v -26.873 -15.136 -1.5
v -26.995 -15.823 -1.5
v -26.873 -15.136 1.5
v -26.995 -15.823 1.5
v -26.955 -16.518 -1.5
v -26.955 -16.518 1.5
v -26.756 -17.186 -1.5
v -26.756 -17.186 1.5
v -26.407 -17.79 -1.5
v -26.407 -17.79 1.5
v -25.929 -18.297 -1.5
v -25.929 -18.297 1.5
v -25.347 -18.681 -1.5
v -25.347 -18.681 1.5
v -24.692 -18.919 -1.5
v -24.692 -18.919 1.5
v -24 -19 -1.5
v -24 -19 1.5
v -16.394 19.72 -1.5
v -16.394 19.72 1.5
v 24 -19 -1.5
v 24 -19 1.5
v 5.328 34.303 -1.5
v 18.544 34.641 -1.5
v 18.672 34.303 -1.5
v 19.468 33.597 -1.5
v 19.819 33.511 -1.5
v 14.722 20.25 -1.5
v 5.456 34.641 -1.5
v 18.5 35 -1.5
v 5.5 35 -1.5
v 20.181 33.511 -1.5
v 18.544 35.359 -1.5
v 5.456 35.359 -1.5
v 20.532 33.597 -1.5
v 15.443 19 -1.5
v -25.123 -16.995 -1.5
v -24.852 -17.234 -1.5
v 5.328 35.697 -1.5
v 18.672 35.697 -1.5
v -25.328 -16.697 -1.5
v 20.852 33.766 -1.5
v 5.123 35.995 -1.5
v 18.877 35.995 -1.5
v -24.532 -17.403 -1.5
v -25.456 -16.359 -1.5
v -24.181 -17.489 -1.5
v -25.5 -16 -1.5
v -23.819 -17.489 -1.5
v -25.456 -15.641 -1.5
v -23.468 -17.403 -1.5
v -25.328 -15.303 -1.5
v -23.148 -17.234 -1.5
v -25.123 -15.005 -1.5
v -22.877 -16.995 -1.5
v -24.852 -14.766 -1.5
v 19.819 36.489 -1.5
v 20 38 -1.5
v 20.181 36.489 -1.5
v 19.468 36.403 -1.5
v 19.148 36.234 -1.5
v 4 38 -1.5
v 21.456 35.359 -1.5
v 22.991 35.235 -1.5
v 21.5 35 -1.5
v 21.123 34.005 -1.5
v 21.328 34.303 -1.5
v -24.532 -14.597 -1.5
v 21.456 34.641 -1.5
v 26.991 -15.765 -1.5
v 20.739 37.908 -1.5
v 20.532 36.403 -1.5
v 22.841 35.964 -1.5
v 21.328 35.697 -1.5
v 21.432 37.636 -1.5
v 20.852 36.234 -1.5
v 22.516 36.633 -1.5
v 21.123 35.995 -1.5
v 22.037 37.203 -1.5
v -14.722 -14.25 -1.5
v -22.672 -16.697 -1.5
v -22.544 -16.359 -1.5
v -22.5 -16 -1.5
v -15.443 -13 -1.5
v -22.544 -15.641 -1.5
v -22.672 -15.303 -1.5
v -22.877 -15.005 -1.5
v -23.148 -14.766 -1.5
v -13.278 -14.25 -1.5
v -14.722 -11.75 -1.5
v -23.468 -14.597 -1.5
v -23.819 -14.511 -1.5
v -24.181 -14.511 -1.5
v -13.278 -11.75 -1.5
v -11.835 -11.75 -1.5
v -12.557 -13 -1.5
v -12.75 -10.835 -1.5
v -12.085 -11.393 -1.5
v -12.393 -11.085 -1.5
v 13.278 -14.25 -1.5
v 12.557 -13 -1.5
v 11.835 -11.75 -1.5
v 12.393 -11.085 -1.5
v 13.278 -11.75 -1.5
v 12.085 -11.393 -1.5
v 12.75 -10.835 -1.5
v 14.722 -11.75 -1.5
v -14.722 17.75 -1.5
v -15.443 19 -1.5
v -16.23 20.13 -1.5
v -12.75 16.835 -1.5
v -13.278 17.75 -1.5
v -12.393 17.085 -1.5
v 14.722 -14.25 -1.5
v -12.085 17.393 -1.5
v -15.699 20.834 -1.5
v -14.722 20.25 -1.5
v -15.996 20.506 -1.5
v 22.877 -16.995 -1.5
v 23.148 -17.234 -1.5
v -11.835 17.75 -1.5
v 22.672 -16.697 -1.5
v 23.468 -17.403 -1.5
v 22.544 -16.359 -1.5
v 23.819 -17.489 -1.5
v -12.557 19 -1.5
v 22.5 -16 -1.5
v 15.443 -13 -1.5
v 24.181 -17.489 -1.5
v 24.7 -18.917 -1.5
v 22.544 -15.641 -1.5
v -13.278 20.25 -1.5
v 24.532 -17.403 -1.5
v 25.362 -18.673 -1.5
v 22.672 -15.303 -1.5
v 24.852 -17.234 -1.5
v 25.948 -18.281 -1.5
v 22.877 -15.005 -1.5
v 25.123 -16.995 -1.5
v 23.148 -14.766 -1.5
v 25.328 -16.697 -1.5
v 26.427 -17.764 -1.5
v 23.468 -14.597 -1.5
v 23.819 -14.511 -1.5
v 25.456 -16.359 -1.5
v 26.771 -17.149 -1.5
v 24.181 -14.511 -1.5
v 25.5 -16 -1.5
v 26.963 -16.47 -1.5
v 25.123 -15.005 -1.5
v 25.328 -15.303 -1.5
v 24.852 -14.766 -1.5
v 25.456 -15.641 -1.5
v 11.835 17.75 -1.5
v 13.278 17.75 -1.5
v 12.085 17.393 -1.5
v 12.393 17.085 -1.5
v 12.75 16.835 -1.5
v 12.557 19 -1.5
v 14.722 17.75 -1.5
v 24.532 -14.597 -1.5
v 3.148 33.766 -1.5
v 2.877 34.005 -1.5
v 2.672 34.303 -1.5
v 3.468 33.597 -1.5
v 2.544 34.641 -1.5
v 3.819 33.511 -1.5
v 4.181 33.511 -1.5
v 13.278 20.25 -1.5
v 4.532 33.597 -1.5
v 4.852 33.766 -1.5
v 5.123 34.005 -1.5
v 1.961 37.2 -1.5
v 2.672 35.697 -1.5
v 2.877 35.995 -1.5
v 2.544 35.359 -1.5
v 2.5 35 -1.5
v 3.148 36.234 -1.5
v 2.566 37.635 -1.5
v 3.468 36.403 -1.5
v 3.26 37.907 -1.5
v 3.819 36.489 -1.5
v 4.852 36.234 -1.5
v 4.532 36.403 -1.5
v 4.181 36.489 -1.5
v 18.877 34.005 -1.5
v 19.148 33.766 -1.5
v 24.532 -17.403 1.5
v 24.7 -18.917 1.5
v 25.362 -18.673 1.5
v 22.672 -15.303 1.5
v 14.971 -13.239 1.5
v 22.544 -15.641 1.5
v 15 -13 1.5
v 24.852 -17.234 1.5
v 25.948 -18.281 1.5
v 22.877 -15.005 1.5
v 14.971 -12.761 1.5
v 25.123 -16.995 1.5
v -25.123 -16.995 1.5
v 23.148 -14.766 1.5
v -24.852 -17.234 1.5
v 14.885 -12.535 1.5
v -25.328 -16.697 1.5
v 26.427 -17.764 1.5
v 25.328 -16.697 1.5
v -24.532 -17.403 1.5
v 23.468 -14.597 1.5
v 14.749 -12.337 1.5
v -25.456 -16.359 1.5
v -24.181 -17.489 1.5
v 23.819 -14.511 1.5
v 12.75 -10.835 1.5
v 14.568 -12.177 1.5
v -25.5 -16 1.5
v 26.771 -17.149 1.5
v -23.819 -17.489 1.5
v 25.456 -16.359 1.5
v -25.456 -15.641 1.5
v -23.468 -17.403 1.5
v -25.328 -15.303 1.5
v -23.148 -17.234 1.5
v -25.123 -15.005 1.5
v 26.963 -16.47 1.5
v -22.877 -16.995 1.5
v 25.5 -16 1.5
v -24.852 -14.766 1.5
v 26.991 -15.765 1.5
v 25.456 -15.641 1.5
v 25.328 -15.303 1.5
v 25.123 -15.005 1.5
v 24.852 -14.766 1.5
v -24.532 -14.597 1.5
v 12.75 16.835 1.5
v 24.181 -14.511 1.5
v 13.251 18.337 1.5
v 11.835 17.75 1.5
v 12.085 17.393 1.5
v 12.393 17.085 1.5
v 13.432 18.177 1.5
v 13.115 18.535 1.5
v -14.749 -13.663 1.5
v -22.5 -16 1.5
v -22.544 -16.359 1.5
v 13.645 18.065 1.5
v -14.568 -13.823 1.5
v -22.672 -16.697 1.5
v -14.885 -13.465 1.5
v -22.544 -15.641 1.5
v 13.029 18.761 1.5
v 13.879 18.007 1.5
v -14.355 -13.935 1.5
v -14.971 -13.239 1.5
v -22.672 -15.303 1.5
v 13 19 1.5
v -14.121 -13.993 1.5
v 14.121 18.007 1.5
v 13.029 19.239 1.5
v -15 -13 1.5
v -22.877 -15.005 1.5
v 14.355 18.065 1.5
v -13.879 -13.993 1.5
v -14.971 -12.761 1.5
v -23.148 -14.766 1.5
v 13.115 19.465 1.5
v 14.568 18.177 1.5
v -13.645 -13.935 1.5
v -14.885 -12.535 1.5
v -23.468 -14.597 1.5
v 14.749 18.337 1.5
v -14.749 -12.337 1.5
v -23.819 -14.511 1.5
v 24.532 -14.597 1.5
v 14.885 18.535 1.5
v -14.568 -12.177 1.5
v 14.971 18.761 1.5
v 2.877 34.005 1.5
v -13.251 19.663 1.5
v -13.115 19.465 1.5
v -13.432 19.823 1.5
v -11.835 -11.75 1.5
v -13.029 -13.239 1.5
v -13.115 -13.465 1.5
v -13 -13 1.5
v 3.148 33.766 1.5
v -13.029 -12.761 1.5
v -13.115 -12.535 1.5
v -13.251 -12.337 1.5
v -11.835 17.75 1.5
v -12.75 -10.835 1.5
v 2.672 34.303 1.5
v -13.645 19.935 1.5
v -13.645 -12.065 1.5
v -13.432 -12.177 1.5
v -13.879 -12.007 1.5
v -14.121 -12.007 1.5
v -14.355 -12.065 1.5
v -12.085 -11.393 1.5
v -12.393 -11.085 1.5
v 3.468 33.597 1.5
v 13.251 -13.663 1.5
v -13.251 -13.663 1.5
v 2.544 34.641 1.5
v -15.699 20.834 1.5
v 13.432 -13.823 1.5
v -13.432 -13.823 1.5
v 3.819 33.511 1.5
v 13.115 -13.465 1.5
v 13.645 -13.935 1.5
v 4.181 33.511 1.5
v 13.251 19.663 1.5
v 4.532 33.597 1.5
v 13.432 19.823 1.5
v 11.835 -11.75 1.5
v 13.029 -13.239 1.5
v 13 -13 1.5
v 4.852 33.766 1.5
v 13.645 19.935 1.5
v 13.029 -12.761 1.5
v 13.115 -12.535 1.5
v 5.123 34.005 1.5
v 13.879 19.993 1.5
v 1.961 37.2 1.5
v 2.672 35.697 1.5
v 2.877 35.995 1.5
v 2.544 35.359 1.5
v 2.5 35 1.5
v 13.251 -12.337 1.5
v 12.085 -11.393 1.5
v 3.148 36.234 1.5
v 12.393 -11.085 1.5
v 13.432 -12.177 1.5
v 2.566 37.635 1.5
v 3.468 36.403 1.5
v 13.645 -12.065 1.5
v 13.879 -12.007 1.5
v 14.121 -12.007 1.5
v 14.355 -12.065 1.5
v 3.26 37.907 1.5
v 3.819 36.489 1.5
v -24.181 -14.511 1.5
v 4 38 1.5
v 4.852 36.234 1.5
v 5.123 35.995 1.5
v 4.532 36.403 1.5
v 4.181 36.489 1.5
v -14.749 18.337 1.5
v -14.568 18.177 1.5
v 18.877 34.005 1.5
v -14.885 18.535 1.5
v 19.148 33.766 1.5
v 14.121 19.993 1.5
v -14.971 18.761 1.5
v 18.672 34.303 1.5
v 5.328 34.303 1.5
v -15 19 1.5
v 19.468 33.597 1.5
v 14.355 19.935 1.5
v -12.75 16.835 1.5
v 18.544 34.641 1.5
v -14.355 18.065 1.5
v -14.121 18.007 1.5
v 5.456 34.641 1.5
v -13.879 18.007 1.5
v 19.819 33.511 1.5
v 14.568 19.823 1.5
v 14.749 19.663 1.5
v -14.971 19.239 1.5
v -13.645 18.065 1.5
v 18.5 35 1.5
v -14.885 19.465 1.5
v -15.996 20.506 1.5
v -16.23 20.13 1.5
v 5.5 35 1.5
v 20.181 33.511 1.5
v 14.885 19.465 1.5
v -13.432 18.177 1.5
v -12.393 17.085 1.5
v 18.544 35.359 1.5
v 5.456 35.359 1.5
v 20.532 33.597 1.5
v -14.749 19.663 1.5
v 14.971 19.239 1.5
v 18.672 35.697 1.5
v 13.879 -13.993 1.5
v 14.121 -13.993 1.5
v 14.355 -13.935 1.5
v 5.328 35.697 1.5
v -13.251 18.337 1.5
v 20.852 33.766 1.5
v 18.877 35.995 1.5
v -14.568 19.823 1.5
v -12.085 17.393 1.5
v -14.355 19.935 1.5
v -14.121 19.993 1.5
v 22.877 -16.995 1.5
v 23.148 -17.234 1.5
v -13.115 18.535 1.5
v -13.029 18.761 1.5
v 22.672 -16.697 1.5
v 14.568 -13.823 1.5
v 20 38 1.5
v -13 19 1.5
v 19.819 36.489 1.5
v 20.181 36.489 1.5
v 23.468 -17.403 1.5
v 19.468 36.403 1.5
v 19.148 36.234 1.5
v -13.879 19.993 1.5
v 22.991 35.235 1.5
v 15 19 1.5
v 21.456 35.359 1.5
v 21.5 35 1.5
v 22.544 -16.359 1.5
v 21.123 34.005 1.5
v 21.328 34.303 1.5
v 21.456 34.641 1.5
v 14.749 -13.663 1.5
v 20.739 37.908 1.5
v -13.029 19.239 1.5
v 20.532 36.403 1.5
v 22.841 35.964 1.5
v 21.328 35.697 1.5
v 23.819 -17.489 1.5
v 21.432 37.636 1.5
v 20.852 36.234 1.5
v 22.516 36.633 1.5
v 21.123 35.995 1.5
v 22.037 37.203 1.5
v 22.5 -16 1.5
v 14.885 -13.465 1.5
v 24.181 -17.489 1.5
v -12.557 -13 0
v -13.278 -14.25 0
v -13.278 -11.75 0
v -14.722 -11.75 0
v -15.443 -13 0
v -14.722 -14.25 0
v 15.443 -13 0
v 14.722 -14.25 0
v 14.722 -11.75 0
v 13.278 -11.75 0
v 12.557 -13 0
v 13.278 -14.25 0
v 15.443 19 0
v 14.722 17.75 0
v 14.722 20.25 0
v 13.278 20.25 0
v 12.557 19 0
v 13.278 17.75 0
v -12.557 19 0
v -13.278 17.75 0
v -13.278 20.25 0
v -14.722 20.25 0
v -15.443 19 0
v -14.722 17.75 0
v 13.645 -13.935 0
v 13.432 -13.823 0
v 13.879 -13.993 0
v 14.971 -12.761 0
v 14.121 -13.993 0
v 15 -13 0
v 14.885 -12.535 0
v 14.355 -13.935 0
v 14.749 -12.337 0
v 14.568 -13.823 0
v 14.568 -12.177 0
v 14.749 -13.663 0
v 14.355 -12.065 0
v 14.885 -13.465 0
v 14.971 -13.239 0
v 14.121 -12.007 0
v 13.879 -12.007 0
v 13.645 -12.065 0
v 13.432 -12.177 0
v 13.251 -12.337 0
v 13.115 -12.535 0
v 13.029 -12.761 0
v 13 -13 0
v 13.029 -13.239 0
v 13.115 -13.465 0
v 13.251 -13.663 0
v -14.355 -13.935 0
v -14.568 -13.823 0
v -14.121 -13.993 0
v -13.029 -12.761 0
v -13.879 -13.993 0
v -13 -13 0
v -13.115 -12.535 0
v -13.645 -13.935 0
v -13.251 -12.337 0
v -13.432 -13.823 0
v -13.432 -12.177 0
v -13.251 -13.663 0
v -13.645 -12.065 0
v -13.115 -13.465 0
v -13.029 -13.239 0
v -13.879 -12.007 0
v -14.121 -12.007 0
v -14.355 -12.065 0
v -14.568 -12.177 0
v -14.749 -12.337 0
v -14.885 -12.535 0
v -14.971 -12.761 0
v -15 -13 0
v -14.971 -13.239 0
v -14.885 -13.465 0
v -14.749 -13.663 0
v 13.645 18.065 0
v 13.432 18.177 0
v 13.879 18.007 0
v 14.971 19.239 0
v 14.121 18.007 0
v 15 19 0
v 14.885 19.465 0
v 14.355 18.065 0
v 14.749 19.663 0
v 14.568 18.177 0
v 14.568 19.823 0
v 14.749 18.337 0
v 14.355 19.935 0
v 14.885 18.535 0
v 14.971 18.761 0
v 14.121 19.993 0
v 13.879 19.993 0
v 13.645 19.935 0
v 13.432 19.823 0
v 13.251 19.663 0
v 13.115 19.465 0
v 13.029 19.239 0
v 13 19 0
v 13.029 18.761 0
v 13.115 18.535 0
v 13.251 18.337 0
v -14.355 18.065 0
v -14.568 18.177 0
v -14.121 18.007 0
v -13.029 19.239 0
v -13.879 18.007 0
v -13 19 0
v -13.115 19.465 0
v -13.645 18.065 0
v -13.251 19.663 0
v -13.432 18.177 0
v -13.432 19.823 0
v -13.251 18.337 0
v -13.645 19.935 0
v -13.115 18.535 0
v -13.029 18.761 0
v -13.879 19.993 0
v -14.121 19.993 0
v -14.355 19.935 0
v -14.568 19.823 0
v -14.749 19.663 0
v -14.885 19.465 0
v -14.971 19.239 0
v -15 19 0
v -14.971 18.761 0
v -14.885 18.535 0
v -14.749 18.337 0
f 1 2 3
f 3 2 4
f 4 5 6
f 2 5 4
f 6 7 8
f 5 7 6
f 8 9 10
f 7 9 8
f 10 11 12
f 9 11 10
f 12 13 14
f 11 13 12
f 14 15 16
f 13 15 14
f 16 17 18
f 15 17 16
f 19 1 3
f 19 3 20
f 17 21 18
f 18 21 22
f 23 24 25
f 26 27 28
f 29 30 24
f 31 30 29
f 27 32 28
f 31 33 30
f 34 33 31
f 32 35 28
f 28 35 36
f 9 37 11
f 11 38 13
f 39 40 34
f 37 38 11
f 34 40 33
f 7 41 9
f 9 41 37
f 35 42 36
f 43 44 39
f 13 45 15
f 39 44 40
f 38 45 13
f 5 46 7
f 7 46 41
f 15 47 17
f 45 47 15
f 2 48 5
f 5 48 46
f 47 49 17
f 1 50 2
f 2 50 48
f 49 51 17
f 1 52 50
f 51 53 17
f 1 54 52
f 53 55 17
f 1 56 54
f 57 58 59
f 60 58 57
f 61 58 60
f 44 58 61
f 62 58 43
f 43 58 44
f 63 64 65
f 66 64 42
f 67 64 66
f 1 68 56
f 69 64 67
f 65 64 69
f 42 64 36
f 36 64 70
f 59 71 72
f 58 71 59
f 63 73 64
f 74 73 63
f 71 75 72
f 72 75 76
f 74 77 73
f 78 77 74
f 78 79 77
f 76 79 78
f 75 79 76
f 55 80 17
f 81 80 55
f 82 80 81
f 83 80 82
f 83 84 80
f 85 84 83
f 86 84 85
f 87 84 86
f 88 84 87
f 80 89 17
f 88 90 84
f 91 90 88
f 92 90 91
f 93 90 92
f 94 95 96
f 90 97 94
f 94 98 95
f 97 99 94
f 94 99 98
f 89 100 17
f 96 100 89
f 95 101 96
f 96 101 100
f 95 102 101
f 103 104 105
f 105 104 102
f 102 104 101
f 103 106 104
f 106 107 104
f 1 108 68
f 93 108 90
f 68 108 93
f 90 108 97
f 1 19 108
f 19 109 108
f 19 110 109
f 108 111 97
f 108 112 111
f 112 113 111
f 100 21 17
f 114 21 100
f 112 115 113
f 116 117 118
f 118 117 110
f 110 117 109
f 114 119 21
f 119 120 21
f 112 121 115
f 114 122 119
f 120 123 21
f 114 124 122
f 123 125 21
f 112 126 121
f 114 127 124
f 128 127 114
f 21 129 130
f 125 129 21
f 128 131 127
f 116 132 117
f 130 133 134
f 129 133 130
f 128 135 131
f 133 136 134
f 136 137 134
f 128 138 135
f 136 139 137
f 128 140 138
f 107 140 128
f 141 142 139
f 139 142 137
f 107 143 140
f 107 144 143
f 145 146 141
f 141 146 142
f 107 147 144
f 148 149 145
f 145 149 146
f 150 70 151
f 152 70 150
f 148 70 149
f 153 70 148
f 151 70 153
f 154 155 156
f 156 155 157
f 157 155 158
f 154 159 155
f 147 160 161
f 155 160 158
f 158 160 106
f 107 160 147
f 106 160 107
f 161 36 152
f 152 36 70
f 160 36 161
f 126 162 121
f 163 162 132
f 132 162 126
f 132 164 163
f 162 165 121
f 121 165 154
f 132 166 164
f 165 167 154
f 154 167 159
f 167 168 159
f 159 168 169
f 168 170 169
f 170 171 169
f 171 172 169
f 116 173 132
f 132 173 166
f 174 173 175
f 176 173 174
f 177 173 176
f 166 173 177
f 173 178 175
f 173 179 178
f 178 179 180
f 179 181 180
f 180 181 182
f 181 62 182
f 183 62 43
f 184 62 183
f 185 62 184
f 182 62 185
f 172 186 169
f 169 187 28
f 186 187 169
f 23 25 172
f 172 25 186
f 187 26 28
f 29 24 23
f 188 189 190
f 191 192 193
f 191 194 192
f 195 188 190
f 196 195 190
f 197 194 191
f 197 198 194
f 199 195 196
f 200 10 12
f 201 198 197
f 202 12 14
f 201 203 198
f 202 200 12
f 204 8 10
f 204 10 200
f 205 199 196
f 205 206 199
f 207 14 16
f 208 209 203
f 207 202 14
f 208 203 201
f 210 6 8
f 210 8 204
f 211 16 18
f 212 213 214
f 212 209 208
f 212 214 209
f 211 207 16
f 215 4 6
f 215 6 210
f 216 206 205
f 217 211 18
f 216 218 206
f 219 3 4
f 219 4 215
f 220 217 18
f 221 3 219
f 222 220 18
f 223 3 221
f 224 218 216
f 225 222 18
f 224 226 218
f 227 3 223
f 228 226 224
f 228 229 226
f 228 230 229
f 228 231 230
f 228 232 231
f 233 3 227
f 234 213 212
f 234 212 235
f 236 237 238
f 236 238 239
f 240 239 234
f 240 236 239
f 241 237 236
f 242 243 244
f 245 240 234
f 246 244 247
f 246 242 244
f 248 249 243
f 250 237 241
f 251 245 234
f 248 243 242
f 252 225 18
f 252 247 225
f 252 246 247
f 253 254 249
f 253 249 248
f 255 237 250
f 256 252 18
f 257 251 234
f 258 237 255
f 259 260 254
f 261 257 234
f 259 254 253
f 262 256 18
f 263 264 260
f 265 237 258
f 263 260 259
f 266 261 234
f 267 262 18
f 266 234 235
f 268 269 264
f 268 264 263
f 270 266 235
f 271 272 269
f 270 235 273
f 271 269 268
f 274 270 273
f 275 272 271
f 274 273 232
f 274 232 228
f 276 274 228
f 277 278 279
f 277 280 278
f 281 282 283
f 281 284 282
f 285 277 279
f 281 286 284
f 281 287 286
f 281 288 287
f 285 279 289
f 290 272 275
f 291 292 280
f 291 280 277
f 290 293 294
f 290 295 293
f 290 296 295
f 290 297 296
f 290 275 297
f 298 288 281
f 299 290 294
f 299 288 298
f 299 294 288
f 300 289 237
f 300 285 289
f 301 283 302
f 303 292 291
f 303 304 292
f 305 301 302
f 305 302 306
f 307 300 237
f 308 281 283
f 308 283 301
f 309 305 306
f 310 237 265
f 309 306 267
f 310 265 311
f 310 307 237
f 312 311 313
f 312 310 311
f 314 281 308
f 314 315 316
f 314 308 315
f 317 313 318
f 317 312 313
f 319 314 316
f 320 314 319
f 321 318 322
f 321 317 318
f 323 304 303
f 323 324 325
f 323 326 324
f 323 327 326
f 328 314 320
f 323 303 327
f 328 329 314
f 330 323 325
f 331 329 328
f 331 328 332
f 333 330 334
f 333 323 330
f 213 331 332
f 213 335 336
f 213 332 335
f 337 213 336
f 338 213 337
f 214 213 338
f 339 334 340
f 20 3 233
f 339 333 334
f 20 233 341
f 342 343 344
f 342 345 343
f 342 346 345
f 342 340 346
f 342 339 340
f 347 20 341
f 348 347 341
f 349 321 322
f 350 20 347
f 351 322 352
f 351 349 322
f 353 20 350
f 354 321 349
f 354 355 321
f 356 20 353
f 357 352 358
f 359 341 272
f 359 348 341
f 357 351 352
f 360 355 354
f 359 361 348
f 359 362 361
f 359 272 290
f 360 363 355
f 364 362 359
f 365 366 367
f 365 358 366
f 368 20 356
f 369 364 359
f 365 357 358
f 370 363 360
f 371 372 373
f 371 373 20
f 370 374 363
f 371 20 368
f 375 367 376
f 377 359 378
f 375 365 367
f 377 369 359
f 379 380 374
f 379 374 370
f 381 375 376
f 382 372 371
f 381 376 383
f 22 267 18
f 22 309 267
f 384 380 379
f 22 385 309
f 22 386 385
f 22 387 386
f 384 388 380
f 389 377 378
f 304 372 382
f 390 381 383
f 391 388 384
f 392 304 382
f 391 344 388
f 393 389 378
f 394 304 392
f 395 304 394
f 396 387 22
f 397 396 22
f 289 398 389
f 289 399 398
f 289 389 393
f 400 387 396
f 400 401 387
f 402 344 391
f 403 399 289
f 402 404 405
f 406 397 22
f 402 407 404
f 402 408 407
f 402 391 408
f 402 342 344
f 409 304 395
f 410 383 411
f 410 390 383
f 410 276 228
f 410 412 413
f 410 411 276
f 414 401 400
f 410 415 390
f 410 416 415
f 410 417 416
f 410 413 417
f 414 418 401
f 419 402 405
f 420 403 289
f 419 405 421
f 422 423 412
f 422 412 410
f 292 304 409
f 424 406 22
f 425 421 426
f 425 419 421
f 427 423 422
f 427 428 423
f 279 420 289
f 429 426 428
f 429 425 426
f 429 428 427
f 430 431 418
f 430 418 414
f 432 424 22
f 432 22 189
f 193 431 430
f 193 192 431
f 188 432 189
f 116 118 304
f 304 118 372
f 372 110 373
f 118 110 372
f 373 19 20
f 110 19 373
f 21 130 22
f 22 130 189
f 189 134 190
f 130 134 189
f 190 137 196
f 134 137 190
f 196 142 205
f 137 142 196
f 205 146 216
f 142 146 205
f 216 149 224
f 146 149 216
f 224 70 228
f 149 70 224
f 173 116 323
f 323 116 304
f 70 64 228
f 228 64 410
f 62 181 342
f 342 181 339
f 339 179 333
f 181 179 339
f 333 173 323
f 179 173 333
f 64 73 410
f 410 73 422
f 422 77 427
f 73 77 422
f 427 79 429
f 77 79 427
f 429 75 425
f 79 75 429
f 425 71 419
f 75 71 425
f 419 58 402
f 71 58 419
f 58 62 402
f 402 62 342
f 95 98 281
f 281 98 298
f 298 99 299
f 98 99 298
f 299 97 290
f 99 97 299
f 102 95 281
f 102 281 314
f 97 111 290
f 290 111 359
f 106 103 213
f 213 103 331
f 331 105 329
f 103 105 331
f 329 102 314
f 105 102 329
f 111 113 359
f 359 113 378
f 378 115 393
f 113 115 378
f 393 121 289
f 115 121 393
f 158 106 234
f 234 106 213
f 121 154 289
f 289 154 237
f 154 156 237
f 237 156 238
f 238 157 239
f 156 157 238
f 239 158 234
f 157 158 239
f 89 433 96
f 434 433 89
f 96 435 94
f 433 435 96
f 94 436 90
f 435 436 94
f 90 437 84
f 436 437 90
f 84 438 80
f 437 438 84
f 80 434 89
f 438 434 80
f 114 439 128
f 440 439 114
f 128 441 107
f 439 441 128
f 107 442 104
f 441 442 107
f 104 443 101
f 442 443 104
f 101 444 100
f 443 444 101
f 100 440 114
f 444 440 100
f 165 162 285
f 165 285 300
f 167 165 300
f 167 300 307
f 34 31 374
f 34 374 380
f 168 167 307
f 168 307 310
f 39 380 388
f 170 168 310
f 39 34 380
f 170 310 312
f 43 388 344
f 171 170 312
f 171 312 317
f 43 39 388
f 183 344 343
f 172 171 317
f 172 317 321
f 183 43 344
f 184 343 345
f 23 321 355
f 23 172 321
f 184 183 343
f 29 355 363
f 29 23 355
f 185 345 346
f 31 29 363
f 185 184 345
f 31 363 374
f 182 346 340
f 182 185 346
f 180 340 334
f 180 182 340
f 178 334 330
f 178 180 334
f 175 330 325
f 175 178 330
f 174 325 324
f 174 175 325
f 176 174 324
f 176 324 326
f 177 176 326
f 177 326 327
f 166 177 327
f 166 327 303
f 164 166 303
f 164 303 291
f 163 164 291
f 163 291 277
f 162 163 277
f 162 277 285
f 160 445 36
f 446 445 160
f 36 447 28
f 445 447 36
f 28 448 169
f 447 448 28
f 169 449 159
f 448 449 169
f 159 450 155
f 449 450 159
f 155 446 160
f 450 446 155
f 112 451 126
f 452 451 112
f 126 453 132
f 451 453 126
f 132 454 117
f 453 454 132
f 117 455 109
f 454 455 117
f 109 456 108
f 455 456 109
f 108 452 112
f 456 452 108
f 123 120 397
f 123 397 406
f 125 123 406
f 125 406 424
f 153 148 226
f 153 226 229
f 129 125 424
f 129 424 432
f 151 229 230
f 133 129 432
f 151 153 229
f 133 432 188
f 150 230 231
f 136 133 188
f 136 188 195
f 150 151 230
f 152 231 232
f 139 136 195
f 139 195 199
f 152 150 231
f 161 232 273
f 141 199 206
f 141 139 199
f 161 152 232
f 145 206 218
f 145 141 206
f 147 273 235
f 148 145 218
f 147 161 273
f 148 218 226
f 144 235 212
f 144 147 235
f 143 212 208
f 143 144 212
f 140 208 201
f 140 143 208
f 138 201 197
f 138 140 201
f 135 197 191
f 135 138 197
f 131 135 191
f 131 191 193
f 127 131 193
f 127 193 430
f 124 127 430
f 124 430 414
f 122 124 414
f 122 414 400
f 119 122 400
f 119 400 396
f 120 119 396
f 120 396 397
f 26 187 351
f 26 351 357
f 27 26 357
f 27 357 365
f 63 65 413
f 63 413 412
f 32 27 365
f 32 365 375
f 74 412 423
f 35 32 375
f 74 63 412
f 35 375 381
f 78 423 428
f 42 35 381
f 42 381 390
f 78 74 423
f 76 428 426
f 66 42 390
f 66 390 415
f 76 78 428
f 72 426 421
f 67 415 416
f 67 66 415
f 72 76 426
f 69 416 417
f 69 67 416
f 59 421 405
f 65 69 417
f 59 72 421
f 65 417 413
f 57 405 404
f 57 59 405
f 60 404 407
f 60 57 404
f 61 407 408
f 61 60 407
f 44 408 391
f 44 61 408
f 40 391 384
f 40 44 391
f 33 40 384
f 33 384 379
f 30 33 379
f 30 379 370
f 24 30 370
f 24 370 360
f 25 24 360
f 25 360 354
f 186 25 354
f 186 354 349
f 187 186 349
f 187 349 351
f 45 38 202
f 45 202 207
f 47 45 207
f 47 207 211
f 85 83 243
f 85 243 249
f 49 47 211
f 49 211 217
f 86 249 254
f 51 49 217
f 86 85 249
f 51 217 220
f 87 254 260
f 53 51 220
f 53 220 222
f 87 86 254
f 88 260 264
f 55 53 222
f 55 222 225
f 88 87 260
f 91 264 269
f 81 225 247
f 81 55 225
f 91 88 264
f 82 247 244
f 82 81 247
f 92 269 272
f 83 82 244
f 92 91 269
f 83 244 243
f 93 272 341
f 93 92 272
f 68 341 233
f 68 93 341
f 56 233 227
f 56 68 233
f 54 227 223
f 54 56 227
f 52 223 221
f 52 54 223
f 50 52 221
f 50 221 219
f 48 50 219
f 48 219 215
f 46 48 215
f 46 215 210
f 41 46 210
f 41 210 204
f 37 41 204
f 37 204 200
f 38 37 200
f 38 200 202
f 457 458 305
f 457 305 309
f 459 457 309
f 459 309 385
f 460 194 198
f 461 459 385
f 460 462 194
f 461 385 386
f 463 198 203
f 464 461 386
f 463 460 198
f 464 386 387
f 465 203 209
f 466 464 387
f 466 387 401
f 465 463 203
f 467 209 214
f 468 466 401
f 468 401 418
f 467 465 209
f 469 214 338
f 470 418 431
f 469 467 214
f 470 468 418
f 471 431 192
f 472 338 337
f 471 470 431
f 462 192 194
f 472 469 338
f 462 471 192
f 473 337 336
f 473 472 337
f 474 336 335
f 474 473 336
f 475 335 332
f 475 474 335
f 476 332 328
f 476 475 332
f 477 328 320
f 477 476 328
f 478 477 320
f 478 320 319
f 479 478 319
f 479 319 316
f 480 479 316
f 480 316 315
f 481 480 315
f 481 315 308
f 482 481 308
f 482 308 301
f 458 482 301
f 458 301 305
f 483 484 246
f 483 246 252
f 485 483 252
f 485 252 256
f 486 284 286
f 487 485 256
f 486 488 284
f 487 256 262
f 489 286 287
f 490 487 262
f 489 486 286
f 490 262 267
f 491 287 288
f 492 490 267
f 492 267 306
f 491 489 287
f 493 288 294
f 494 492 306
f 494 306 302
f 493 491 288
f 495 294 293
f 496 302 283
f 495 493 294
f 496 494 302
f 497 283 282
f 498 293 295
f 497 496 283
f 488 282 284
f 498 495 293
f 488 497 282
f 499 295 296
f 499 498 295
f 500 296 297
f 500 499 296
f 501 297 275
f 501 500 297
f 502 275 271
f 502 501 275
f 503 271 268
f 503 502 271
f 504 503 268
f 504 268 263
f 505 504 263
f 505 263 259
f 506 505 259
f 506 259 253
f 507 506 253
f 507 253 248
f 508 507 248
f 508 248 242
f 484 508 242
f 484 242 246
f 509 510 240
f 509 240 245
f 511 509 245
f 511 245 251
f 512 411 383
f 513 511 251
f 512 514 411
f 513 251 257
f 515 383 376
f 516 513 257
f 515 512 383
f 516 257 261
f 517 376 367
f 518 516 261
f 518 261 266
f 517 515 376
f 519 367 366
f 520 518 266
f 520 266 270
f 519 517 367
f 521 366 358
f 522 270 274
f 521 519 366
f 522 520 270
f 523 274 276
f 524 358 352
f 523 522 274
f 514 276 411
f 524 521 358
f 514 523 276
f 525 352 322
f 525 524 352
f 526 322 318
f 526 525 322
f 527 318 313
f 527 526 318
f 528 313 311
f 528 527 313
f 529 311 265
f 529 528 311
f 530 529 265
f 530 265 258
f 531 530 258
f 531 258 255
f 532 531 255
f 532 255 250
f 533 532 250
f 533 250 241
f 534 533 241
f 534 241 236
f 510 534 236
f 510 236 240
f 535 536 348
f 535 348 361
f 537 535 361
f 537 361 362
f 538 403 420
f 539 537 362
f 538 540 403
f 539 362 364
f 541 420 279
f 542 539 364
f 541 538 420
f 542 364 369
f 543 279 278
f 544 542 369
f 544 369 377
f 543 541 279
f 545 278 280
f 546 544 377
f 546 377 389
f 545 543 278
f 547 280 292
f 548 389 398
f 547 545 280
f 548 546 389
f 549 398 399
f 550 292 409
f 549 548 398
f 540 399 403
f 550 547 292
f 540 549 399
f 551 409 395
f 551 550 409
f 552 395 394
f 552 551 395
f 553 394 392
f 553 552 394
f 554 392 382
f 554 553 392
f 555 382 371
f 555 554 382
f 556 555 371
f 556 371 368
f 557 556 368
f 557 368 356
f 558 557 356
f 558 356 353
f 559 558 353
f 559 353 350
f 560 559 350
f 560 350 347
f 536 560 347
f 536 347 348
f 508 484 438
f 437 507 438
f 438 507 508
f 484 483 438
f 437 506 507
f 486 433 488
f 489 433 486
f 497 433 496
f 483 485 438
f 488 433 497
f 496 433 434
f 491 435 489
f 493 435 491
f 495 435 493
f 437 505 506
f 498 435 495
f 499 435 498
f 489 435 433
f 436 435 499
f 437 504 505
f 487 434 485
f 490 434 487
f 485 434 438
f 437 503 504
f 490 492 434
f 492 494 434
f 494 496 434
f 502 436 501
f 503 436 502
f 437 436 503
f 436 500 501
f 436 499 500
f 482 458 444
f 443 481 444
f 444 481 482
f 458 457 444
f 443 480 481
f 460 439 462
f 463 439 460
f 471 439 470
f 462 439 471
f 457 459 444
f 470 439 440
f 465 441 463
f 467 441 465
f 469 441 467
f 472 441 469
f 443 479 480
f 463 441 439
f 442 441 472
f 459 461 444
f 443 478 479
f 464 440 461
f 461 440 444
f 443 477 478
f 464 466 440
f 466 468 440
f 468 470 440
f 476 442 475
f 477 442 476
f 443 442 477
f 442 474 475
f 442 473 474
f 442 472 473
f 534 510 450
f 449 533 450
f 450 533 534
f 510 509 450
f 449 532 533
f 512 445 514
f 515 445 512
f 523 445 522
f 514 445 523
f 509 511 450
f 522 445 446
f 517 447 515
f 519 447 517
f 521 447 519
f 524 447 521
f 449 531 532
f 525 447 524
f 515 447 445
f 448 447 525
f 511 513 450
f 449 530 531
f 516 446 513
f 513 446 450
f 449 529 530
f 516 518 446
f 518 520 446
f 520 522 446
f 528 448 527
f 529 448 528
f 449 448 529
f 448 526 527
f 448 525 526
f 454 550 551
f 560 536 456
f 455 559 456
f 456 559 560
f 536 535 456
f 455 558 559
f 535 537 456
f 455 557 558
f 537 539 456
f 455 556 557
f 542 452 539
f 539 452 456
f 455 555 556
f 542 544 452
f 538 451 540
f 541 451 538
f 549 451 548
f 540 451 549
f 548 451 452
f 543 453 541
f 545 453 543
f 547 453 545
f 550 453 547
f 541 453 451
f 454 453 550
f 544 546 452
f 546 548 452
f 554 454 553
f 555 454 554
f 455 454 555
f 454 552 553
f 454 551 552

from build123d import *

# Parameters (mm, degrees)
SKETCH001_R    = 1.5
SKETCH001_R_2  = 1
PAD_DEPTH      = 1.5
PAD_DEPTH_BACK = 1.5
SKETCH002_R    = 1
POCKET_DEPTH   = 2


with BuildPart() as part:
    # Sketch001 → Pad (new body, two sides)
    with BuildSketch(Plane.XY) as pad_sk:
        with BuildLine():
            Line((26.990815, -15.765426), (22.990815, 35.234574))
            ThreePointArc((22.990815, 35.234574), (22.036698, 37.202694), (20, 38))
            Line((20, 38), (4, 38))
            ThreePointArc((4, 38), (2.904805, 37.792946), (1.960786, 37.200365))
            Line((1.960786, 37.200365), (-15.699328, 20.833653))
            ThreePointArc((-15.699328, 20.833653), (-16.121162, 20.323129), (-16.394149, 19.719757))
            Line((-26.872979, -15.136292), (-16.394149, 19.719757))
            ThreePointArc((-26.872979, -15.136292), (-26.407397, -17.790094), (-24, -19))
            Line((-24, -19), (24, -19))
            ThreePointArc((24, -19), (26.202694, -18.036698), (26.990815, -15.765426))
        make_face()
        with Locations((20, 35)):
            Circle(SKETCH001_R, mode=Mode.SUBTRACT)
        with Locations((4, 35)):
            Circle(SKETCH001_R, mode=Mode.SUBTRACT)
        with Locations((-24, -16)):
            Circle(SKETCH001_R, mode=Mode.SUBTRACT)
        with Locations((24, -16)):
            Circle(SKETCH001_R, mode=Mode.SUBTRACT)
        with Locations((-14, 19)):
            Circle(SKETCH001_R_2, mode=Mode.SUBTRACT)
        with Locations((14, 19)):
            Circle(SKETCH001_R_2, mode=Mode.SUBTRACT)
        with Locations((-14, -13)):
            Circle(SKETCH001_R_2, mode=Mode.SUBTRACT)
        with Locations((14, -13)):
            Circle(SKETCH001_R_2, mode=Mode.SUBTRACT)
        with BuildLine():
            ThreePointArc((-12.75, 16.834936), (-12.232233, 17.232233), (-11.834936, 17.75))
            Line((-11.834936, 17.75), (11.834936, 17.75))
            ThreePointArc((11.834936, 17.75), (12.232233, 17.232233), (12.75, 16.834936))
            Line((12.75, 16.834936), (12.75, -10.834936))
            ThreePointArc((12.75, -10.834936), (12.232233, -11.232233), (11.834936, -11.75))
            Line((-11.834936, -11.75), (11.834936, -11.75))
            ThreePointArc((-11.834936, -11.75), (-12.232233, -11.232233), (-12.75, -10.834936))
            Line((-12.75, -10.834936), (-12.75, 16.834936))
        make_face(mode=Mode.SUBTRACT)
    extrude(amount=PAD_DEPTH)
    extrude(pad_sk.sketch, amount=-PAD_DEPTH_BACK)

    # Sketch002 → Pocket (cut)
    with BuildSketch(Plane.XY):
        Polygon((-13.278312, -14.25), (-12.556624, -13), (-13.278312, -11.75), (-14.721688, -11.75), (-15.443376, -13), (-14.721688, -14.25), align=None)
        with Locations((-14, -13)):
            Circle(SKETCH002_R, mode=Mode.SUBTRACT)
        Polygon((14.721688, -14.25), (15.443376, -13), (14.721688, -11.75), (13.278312, -11.75), (12.556624, -13), (13.278312, -14.25), align=None)
        with Locations((14, -13)):
            Circle(SKETCH002_R, mode=Mode.SUBTRACT)
        Polygon((14.721688, 17.75), (15.443376, 19), (14.721688, 20.25), (13.278312, 20.25), (12.556624, 19), (13.278312, 17.75), align=None)
        with Locations((14, 19)):
            Circle(SKETCH002_R, mode=Mode.SUBTRACT)
        Polygon((-13.278312, 17.75), (-12.556624, 19), (-13.278312, 20.25), (-14.721688, 20.25), (-15.443376, 19), (-14.721688, 17.75), align=None)
        with Locations((-14, 19)):
            Circle(SKETCH002_R, mode=Mode.SUBTRACT)
    extrude(amount=-POCKET_DEPTH, mode=Mode.SUBTRACT)


solid = part.part
